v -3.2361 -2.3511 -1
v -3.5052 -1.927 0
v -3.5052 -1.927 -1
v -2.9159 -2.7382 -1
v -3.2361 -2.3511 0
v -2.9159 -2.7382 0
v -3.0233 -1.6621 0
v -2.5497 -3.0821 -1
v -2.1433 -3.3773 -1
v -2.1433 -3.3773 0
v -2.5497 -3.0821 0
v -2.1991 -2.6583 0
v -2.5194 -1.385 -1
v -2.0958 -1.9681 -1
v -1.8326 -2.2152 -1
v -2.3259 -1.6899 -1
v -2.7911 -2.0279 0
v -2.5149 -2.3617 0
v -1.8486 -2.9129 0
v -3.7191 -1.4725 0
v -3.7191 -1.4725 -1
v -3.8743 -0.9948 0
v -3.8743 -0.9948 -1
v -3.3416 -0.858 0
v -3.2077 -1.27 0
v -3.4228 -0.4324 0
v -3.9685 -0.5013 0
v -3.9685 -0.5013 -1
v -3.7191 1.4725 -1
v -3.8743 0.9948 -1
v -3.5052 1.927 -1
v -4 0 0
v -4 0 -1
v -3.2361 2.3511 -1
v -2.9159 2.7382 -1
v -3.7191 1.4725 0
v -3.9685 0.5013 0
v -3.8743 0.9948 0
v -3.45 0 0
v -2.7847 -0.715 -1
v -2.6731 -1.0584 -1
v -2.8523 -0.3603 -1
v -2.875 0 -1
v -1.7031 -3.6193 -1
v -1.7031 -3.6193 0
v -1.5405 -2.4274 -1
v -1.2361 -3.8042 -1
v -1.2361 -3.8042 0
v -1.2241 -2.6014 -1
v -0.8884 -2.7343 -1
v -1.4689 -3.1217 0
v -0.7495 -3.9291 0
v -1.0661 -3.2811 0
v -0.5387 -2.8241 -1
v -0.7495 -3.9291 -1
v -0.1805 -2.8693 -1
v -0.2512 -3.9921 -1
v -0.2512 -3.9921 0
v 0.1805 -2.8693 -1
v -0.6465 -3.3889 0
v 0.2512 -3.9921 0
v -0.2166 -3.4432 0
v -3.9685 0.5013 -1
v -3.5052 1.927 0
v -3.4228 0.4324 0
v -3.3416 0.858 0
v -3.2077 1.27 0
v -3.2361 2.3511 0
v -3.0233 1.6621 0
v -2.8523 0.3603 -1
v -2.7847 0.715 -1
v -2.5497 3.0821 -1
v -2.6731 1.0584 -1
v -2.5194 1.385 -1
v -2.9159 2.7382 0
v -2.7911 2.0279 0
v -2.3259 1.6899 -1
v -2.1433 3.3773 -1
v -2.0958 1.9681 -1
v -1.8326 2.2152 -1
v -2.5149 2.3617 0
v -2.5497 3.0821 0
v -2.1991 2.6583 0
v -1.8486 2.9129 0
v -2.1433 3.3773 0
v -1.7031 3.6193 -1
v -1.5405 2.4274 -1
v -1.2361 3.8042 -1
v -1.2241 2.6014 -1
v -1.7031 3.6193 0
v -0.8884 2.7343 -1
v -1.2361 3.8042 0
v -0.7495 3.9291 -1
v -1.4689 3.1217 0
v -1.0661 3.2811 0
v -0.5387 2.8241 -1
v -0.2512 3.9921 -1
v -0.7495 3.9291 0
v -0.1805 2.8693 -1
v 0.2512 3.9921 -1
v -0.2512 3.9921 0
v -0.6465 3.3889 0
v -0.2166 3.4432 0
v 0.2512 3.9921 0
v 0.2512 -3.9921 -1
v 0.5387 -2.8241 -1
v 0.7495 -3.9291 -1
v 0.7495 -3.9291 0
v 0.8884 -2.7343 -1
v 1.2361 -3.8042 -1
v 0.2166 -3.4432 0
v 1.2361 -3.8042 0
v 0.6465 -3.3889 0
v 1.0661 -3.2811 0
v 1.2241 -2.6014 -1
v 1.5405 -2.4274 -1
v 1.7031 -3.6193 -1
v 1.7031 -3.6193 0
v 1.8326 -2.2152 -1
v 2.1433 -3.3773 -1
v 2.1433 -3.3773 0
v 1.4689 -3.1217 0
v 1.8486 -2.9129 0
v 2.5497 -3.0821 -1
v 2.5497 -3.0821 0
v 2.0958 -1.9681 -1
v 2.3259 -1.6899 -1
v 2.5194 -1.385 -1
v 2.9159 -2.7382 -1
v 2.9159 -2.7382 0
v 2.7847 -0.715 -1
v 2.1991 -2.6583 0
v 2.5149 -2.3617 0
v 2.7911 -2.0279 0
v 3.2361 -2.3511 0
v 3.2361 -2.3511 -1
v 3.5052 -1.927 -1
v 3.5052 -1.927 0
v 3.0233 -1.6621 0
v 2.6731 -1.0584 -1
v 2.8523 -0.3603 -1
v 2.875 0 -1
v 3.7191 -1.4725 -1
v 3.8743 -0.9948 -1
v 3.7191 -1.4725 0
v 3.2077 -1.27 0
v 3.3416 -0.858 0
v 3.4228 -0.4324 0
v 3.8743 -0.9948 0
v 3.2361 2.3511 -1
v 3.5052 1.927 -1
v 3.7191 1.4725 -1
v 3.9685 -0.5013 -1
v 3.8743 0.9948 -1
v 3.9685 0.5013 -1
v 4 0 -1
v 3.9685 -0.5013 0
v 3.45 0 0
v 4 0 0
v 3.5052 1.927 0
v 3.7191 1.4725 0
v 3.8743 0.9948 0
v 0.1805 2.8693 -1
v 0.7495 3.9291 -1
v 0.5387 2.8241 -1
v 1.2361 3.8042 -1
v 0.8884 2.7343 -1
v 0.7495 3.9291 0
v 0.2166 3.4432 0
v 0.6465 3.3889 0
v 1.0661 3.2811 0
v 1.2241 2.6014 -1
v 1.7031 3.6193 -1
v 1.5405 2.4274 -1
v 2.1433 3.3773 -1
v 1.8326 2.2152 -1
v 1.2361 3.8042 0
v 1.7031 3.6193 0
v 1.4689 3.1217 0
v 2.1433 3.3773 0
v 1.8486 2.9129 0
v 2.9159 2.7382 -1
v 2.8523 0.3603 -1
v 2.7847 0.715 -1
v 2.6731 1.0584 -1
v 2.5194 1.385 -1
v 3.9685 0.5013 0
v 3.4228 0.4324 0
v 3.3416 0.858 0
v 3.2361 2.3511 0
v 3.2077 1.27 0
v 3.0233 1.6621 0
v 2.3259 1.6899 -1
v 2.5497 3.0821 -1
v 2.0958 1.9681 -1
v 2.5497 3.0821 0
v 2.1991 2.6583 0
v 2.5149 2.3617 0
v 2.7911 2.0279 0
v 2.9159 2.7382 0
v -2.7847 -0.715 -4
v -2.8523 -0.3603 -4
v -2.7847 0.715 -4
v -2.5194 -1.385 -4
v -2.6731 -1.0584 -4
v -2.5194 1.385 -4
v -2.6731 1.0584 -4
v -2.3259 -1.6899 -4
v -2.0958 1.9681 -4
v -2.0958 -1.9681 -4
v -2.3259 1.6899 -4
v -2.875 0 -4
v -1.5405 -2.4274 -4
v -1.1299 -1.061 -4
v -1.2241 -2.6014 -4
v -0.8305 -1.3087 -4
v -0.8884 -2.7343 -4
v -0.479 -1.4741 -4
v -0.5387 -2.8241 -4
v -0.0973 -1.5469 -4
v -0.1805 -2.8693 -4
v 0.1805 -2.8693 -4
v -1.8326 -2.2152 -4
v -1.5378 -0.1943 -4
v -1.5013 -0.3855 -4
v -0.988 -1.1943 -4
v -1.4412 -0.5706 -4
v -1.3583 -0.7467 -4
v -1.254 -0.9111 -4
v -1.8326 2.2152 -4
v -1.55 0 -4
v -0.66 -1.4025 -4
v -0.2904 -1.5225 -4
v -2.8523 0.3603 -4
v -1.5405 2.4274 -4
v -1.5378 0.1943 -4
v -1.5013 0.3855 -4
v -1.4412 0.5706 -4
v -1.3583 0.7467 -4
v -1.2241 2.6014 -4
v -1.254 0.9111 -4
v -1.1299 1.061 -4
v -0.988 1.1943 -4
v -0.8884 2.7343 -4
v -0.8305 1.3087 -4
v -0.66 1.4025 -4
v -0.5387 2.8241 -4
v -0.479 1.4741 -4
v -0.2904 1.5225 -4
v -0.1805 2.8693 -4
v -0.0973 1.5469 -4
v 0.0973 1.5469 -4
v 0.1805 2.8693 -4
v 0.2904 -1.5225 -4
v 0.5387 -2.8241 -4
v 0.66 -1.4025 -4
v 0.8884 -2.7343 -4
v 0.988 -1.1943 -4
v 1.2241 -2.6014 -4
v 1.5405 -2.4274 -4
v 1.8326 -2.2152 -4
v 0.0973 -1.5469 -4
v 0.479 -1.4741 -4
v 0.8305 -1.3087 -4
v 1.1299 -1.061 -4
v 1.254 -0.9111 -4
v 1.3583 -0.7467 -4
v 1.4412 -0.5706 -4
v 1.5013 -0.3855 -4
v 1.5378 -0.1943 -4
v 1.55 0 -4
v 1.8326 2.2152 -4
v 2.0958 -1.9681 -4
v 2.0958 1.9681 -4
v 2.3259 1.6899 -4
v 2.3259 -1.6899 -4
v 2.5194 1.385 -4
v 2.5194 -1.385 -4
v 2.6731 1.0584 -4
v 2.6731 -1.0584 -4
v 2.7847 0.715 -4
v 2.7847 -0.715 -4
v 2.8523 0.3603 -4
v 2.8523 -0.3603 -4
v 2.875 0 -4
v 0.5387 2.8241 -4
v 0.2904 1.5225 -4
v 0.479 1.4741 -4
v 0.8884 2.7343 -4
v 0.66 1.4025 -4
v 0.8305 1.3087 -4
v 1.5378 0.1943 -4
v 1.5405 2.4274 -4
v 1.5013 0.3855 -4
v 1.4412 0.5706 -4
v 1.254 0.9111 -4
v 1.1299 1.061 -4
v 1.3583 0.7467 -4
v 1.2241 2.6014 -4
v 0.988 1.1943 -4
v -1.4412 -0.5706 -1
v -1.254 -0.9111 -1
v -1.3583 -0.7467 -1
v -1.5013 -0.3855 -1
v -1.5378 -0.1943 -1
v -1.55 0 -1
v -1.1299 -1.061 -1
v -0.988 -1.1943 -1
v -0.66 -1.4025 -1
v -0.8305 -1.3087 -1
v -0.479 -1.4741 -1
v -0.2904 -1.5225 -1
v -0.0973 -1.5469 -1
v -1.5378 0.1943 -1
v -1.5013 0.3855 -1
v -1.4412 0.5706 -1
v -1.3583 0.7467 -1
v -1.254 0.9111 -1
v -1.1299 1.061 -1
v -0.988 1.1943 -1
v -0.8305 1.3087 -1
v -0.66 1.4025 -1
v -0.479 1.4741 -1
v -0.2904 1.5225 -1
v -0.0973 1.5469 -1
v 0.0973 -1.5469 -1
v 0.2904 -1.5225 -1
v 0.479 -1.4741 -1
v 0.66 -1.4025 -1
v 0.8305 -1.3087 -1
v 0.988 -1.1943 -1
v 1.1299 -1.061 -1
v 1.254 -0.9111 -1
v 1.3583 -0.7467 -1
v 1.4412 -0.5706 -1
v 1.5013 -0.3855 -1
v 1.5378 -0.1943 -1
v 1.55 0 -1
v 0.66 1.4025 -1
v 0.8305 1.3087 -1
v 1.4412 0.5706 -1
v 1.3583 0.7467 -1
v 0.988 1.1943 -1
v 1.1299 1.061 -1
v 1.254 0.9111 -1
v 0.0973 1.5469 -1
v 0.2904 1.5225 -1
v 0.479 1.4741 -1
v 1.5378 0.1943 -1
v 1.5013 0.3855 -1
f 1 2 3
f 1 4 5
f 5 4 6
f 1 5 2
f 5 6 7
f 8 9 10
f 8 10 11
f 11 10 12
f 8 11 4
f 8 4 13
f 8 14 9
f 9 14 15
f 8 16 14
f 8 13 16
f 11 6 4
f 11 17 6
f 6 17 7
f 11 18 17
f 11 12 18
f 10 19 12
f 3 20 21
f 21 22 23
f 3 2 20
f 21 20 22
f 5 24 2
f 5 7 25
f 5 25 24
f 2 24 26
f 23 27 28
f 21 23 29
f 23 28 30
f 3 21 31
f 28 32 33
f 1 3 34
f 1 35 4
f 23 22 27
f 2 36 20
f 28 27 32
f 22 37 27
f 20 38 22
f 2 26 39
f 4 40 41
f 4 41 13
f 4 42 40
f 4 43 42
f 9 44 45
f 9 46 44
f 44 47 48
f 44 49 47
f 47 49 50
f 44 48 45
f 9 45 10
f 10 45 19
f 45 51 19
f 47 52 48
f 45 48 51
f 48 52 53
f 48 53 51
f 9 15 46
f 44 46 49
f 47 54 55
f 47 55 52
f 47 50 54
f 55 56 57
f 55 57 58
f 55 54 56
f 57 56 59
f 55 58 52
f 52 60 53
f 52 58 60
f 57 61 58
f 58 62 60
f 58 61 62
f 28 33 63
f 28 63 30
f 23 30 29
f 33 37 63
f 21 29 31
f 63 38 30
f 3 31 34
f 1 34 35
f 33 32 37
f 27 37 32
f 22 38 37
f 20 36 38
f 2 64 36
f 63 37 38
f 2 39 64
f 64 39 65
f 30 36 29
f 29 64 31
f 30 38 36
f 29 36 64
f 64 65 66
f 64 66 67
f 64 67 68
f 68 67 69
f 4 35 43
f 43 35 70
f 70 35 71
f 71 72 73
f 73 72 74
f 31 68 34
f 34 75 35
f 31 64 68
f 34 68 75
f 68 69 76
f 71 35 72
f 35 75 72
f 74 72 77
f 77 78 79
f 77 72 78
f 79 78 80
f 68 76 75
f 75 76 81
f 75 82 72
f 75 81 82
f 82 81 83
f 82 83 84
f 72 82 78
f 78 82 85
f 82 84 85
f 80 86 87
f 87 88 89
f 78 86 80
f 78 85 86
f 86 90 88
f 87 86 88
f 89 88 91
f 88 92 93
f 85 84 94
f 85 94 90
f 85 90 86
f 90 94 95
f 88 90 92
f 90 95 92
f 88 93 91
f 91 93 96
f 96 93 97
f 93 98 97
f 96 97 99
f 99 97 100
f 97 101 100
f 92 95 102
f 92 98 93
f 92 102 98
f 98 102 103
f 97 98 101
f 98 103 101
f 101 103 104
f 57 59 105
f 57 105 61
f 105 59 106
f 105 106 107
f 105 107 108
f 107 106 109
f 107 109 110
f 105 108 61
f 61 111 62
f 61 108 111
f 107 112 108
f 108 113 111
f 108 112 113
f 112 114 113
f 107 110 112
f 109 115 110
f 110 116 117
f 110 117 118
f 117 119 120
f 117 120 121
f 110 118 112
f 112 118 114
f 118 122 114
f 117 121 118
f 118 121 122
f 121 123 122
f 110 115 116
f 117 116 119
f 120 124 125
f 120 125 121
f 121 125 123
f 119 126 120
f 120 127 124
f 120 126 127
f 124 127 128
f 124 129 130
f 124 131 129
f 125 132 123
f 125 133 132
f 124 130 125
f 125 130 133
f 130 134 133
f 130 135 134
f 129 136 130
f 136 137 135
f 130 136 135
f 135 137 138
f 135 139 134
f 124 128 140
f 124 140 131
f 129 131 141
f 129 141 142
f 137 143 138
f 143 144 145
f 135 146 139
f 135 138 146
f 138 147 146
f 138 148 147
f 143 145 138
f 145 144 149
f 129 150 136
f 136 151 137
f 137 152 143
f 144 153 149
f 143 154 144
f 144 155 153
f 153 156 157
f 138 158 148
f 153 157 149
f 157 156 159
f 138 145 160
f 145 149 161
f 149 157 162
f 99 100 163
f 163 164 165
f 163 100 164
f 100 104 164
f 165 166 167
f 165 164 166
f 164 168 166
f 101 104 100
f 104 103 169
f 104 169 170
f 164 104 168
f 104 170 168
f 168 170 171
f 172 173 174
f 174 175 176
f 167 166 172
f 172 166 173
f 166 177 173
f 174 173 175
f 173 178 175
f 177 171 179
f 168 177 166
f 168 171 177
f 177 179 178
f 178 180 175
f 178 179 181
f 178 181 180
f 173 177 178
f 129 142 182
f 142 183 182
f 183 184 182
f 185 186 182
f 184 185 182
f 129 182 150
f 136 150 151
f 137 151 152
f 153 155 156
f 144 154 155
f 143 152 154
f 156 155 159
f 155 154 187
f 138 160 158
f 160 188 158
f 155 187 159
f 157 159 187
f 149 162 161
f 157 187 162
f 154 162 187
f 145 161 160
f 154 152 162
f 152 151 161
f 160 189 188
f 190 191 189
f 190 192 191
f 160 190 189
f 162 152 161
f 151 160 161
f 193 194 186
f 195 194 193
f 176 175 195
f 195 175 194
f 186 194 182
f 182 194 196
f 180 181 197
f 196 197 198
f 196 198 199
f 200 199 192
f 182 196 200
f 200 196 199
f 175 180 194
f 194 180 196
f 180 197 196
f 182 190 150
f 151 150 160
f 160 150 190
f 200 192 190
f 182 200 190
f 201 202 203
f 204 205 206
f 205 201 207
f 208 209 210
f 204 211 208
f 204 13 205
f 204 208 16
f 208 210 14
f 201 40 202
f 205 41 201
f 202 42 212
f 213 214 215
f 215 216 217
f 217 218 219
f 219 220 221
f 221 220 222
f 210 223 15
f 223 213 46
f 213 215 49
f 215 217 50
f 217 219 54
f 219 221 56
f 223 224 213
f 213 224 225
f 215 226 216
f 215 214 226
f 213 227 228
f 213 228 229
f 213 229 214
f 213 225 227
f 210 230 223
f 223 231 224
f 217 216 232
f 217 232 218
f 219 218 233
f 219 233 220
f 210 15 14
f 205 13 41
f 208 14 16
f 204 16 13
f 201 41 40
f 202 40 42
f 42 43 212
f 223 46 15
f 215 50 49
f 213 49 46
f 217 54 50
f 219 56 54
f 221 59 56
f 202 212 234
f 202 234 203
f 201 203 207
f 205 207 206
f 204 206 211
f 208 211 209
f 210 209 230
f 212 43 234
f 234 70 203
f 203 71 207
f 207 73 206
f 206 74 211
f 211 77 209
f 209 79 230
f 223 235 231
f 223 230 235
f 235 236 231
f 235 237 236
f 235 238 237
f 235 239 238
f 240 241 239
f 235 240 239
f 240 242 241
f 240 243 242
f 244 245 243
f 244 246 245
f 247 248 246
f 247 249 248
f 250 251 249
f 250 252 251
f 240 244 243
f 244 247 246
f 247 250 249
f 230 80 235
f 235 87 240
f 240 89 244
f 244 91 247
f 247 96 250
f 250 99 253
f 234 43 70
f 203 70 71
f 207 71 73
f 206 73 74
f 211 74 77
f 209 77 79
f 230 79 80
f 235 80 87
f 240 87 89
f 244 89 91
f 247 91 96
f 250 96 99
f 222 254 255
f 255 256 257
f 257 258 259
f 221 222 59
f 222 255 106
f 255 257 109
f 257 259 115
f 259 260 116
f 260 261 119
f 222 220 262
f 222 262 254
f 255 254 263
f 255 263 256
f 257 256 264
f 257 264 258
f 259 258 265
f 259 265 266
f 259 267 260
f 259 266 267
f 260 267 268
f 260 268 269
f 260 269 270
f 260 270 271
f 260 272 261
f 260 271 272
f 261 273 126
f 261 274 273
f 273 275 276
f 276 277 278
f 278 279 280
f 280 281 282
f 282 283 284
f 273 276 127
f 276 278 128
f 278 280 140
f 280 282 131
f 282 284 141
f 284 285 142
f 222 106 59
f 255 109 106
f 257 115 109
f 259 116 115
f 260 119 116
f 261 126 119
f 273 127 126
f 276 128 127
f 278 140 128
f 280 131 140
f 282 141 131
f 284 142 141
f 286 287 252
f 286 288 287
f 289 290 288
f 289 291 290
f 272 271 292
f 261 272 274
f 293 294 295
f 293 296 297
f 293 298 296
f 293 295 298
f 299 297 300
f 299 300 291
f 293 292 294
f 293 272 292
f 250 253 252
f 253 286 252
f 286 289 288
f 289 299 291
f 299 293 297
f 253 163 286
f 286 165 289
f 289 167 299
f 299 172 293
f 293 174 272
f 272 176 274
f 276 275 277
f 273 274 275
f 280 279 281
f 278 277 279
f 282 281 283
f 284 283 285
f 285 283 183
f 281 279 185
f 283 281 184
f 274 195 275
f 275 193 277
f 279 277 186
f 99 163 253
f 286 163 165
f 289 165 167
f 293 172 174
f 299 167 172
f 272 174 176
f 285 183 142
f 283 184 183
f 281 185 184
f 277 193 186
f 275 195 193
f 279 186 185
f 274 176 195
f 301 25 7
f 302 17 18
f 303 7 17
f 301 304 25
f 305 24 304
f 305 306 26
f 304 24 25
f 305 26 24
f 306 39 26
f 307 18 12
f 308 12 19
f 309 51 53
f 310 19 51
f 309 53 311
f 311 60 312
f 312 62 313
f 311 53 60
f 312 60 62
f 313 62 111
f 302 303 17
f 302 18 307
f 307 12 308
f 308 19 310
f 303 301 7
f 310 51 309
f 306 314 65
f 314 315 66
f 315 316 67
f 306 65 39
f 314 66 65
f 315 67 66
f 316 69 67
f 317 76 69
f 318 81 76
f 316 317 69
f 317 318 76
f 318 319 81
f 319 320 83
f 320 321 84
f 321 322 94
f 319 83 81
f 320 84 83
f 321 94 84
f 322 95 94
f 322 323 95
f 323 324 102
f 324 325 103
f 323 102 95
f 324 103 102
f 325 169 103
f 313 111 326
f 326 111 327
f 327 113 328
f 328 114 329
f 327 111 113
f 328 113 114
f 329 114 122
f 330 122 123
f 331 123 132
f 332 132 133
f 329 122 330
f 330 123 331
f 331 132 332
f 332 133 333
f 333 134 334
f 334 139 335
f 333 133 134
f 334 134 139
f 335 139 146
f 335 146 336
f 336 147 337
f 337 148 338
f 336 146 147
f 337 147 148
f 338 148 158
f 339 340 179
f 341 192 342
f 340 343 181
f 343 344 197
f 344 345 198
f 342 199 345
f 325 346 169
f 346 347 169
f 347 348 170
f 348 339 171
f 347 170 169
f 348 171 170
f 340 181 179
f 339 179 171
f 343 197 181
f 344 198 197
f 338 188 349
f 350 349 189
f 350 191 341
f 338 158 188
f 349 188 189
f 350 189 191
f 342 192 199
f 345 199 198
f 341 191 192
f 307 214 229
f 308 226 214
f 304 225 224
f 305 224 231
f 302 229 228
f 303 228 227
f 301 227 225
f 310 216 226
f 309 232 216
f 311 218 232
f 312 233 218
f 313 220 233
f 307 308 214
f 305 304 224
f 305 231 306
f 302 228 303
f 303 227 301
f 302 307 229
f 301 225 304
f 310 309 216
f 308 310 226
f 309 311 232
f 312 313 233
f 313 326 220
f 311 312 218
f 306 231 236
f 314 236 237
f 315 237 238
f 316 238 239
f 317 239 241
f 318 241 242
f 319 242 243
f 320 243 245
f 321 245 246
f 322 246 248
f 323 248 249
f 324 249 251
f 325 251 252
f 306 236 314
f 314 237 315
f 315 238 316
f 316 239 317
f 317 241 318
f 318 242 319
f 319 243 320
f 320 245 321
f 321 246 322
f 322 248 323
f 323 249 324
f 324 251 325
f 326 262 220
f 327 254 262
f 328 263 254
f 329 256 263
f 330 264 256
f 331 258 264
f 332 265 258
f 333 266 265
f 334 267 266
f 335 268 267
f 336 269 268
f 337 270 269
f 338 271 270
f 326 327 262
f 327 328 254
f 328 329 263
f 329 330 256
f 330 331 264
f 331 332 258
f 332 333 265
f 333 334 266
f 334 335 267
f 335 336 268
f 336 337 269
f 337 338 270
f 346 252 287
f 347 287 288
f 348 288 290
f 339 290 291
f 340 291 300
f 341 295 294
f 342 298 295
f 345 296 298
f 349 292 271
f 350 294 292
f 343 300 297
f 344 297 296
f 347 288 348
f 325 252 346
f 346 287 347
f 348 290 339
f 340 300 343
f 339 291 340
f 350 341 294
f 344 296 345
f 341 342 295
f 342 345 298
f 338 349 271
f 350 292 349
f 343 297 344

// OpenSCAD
$fn = 50;

difference() {
	union() {
		translate(v = [0, 0, -1.0]) {
			cylinder(h = 1.0, r = 4.0);
		}
		#translate(v = [0, 0, -4.0]) {
			cylinder(h = 4.0, r = 2.875);
		}
	}
	union() {
		translate(v = [0, 0, 0]) {
			rotate(a = [0, 0, 0]) {
				difference() {
					union() {
						translate(v = [0, 0, -4.0]) {
							cylinder(h = 4.0, r = 1.25);
						}
						translate(v = [0, 0, -1.0]) {
							cylinder(h = 1.0, r1 = 1.55, r2 = 3.45);
						}
						translate(v = [0, 0, -4.0]) {
							cylinder(h = 4.0, r = 1.55);
						}
						translate(v = [0, 0, -4.0]) {
							cylinder(h = 4.0, r = 1.25);
						}
					}
					union();
				}
			}
		}
	}
}
